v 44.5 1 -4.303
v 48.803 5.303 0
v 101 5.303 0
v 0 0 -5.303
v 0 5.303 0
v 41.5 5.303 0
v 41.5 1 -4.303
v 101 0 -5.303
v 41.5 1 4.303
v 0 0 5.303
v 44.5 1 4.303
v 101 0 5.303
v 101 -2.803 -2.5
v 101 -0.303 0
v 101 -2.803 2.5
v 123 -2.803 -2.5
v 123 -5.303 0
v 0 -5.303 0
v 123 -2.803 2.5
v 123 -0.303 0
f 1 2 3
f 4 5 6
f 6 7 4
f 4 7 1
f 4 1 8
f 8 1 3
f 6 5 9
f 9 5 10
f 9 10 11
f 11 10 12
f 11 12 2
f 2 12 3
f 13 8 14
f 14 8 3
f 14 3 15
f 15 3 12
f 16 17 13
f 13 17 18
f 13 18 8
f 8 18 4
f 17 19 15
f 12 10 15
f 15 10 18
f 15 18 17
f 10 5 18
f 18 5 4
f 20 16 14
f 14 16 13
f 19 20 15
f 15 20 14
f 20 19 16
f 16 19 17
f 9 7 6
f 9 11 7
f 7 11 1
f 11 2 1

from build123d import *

# Parameters (mm, degrees)
BOSS_EXTRUDE1_DEPTH     = 101
BOSS_EXTRUDE2_DEPTH     = 22
CUT_EXTRUDE1_REACH      = 126.228
CUT_EXTRUDE1_START      = 1
SKETCH3_W               = 3
SKETCH3_H               = 10.606601718
CUT_EXTRUDE2_DEPTH      = 124.228446391
CUT_EXTRUDE2_DEPTH_BACK = 124.228446391


with BuildPart() as part:
    # Sketch1 → Boss-Extrude1 (new body)
    with BuildSketch(Plane(origin=(0, 0, 0), x_dir=(0, 0, -1), z_dir=(1, 0, 0))):
        Polygon((5.303300859, 0), (0, 5.303300859), (-5.303300859, 0), (0, -5.303300859), align=None)
    extrude(amount=BOSS_EXTRUDE1_DEPTH)

    # Sketch2 → Boss-Extrude2 (add)
    with BuildSketch(Plane(origin=(101, 0, 0), x_dir=(0, 0, -1), z_dir=(1, 0, 0))):
        Polygon((0, -5.303300859), (-2.5, -2.803300859), (0, -0.303300859), (2.5, -2.803300859), align=None)
    extrude(amount=BOSS_EXTRUDE2_DEPTH)

    # Sketch3 → Cut-Extrude1 (cut, up to next)
    with BuildSketch(Plane(origin=(0, 0, 0), x_dir=(1, 0, 0), z_dir=(0, 1, 0)).offset(CUT_EXTRUDE1_START), mode=Mode.PRIVATE) as cut_extrude1_sk1:
        with Locations((43, 0)):
            Rectangle(SKETCH3_W, SKETCH3_H)
    cut_extrude1_tool1 = extrude(cut_extrude1_sk1.sketch, amount=CUT_EXTRUDE1_REACH, mode=Mode.PRIVATE) & part.part
    add(cut_extrude1_tool1.solids().sort_by_distance((43, 1, 0))[0], mode=Mode.SUBTRACT)

    # Sketch4 → Cut-Extrude2 (cut, two sides: drawn at the far end of the back side and taken through both)
    with BuildSketch(Plane.XY.offset(-CUT_EXTRUDE2_DEPTH_BACK)):
        Polygon((44.5, 1), (48.803300859, 5.303300859), (44.5, 5.303300859), align=None)
    extrude(amount=CUT_EXTRUDE2_DEPTH + CUT_EXTRUDE2_DEPTH_BACK, mode=Mode.SUBTRACT)


solid = part.part
